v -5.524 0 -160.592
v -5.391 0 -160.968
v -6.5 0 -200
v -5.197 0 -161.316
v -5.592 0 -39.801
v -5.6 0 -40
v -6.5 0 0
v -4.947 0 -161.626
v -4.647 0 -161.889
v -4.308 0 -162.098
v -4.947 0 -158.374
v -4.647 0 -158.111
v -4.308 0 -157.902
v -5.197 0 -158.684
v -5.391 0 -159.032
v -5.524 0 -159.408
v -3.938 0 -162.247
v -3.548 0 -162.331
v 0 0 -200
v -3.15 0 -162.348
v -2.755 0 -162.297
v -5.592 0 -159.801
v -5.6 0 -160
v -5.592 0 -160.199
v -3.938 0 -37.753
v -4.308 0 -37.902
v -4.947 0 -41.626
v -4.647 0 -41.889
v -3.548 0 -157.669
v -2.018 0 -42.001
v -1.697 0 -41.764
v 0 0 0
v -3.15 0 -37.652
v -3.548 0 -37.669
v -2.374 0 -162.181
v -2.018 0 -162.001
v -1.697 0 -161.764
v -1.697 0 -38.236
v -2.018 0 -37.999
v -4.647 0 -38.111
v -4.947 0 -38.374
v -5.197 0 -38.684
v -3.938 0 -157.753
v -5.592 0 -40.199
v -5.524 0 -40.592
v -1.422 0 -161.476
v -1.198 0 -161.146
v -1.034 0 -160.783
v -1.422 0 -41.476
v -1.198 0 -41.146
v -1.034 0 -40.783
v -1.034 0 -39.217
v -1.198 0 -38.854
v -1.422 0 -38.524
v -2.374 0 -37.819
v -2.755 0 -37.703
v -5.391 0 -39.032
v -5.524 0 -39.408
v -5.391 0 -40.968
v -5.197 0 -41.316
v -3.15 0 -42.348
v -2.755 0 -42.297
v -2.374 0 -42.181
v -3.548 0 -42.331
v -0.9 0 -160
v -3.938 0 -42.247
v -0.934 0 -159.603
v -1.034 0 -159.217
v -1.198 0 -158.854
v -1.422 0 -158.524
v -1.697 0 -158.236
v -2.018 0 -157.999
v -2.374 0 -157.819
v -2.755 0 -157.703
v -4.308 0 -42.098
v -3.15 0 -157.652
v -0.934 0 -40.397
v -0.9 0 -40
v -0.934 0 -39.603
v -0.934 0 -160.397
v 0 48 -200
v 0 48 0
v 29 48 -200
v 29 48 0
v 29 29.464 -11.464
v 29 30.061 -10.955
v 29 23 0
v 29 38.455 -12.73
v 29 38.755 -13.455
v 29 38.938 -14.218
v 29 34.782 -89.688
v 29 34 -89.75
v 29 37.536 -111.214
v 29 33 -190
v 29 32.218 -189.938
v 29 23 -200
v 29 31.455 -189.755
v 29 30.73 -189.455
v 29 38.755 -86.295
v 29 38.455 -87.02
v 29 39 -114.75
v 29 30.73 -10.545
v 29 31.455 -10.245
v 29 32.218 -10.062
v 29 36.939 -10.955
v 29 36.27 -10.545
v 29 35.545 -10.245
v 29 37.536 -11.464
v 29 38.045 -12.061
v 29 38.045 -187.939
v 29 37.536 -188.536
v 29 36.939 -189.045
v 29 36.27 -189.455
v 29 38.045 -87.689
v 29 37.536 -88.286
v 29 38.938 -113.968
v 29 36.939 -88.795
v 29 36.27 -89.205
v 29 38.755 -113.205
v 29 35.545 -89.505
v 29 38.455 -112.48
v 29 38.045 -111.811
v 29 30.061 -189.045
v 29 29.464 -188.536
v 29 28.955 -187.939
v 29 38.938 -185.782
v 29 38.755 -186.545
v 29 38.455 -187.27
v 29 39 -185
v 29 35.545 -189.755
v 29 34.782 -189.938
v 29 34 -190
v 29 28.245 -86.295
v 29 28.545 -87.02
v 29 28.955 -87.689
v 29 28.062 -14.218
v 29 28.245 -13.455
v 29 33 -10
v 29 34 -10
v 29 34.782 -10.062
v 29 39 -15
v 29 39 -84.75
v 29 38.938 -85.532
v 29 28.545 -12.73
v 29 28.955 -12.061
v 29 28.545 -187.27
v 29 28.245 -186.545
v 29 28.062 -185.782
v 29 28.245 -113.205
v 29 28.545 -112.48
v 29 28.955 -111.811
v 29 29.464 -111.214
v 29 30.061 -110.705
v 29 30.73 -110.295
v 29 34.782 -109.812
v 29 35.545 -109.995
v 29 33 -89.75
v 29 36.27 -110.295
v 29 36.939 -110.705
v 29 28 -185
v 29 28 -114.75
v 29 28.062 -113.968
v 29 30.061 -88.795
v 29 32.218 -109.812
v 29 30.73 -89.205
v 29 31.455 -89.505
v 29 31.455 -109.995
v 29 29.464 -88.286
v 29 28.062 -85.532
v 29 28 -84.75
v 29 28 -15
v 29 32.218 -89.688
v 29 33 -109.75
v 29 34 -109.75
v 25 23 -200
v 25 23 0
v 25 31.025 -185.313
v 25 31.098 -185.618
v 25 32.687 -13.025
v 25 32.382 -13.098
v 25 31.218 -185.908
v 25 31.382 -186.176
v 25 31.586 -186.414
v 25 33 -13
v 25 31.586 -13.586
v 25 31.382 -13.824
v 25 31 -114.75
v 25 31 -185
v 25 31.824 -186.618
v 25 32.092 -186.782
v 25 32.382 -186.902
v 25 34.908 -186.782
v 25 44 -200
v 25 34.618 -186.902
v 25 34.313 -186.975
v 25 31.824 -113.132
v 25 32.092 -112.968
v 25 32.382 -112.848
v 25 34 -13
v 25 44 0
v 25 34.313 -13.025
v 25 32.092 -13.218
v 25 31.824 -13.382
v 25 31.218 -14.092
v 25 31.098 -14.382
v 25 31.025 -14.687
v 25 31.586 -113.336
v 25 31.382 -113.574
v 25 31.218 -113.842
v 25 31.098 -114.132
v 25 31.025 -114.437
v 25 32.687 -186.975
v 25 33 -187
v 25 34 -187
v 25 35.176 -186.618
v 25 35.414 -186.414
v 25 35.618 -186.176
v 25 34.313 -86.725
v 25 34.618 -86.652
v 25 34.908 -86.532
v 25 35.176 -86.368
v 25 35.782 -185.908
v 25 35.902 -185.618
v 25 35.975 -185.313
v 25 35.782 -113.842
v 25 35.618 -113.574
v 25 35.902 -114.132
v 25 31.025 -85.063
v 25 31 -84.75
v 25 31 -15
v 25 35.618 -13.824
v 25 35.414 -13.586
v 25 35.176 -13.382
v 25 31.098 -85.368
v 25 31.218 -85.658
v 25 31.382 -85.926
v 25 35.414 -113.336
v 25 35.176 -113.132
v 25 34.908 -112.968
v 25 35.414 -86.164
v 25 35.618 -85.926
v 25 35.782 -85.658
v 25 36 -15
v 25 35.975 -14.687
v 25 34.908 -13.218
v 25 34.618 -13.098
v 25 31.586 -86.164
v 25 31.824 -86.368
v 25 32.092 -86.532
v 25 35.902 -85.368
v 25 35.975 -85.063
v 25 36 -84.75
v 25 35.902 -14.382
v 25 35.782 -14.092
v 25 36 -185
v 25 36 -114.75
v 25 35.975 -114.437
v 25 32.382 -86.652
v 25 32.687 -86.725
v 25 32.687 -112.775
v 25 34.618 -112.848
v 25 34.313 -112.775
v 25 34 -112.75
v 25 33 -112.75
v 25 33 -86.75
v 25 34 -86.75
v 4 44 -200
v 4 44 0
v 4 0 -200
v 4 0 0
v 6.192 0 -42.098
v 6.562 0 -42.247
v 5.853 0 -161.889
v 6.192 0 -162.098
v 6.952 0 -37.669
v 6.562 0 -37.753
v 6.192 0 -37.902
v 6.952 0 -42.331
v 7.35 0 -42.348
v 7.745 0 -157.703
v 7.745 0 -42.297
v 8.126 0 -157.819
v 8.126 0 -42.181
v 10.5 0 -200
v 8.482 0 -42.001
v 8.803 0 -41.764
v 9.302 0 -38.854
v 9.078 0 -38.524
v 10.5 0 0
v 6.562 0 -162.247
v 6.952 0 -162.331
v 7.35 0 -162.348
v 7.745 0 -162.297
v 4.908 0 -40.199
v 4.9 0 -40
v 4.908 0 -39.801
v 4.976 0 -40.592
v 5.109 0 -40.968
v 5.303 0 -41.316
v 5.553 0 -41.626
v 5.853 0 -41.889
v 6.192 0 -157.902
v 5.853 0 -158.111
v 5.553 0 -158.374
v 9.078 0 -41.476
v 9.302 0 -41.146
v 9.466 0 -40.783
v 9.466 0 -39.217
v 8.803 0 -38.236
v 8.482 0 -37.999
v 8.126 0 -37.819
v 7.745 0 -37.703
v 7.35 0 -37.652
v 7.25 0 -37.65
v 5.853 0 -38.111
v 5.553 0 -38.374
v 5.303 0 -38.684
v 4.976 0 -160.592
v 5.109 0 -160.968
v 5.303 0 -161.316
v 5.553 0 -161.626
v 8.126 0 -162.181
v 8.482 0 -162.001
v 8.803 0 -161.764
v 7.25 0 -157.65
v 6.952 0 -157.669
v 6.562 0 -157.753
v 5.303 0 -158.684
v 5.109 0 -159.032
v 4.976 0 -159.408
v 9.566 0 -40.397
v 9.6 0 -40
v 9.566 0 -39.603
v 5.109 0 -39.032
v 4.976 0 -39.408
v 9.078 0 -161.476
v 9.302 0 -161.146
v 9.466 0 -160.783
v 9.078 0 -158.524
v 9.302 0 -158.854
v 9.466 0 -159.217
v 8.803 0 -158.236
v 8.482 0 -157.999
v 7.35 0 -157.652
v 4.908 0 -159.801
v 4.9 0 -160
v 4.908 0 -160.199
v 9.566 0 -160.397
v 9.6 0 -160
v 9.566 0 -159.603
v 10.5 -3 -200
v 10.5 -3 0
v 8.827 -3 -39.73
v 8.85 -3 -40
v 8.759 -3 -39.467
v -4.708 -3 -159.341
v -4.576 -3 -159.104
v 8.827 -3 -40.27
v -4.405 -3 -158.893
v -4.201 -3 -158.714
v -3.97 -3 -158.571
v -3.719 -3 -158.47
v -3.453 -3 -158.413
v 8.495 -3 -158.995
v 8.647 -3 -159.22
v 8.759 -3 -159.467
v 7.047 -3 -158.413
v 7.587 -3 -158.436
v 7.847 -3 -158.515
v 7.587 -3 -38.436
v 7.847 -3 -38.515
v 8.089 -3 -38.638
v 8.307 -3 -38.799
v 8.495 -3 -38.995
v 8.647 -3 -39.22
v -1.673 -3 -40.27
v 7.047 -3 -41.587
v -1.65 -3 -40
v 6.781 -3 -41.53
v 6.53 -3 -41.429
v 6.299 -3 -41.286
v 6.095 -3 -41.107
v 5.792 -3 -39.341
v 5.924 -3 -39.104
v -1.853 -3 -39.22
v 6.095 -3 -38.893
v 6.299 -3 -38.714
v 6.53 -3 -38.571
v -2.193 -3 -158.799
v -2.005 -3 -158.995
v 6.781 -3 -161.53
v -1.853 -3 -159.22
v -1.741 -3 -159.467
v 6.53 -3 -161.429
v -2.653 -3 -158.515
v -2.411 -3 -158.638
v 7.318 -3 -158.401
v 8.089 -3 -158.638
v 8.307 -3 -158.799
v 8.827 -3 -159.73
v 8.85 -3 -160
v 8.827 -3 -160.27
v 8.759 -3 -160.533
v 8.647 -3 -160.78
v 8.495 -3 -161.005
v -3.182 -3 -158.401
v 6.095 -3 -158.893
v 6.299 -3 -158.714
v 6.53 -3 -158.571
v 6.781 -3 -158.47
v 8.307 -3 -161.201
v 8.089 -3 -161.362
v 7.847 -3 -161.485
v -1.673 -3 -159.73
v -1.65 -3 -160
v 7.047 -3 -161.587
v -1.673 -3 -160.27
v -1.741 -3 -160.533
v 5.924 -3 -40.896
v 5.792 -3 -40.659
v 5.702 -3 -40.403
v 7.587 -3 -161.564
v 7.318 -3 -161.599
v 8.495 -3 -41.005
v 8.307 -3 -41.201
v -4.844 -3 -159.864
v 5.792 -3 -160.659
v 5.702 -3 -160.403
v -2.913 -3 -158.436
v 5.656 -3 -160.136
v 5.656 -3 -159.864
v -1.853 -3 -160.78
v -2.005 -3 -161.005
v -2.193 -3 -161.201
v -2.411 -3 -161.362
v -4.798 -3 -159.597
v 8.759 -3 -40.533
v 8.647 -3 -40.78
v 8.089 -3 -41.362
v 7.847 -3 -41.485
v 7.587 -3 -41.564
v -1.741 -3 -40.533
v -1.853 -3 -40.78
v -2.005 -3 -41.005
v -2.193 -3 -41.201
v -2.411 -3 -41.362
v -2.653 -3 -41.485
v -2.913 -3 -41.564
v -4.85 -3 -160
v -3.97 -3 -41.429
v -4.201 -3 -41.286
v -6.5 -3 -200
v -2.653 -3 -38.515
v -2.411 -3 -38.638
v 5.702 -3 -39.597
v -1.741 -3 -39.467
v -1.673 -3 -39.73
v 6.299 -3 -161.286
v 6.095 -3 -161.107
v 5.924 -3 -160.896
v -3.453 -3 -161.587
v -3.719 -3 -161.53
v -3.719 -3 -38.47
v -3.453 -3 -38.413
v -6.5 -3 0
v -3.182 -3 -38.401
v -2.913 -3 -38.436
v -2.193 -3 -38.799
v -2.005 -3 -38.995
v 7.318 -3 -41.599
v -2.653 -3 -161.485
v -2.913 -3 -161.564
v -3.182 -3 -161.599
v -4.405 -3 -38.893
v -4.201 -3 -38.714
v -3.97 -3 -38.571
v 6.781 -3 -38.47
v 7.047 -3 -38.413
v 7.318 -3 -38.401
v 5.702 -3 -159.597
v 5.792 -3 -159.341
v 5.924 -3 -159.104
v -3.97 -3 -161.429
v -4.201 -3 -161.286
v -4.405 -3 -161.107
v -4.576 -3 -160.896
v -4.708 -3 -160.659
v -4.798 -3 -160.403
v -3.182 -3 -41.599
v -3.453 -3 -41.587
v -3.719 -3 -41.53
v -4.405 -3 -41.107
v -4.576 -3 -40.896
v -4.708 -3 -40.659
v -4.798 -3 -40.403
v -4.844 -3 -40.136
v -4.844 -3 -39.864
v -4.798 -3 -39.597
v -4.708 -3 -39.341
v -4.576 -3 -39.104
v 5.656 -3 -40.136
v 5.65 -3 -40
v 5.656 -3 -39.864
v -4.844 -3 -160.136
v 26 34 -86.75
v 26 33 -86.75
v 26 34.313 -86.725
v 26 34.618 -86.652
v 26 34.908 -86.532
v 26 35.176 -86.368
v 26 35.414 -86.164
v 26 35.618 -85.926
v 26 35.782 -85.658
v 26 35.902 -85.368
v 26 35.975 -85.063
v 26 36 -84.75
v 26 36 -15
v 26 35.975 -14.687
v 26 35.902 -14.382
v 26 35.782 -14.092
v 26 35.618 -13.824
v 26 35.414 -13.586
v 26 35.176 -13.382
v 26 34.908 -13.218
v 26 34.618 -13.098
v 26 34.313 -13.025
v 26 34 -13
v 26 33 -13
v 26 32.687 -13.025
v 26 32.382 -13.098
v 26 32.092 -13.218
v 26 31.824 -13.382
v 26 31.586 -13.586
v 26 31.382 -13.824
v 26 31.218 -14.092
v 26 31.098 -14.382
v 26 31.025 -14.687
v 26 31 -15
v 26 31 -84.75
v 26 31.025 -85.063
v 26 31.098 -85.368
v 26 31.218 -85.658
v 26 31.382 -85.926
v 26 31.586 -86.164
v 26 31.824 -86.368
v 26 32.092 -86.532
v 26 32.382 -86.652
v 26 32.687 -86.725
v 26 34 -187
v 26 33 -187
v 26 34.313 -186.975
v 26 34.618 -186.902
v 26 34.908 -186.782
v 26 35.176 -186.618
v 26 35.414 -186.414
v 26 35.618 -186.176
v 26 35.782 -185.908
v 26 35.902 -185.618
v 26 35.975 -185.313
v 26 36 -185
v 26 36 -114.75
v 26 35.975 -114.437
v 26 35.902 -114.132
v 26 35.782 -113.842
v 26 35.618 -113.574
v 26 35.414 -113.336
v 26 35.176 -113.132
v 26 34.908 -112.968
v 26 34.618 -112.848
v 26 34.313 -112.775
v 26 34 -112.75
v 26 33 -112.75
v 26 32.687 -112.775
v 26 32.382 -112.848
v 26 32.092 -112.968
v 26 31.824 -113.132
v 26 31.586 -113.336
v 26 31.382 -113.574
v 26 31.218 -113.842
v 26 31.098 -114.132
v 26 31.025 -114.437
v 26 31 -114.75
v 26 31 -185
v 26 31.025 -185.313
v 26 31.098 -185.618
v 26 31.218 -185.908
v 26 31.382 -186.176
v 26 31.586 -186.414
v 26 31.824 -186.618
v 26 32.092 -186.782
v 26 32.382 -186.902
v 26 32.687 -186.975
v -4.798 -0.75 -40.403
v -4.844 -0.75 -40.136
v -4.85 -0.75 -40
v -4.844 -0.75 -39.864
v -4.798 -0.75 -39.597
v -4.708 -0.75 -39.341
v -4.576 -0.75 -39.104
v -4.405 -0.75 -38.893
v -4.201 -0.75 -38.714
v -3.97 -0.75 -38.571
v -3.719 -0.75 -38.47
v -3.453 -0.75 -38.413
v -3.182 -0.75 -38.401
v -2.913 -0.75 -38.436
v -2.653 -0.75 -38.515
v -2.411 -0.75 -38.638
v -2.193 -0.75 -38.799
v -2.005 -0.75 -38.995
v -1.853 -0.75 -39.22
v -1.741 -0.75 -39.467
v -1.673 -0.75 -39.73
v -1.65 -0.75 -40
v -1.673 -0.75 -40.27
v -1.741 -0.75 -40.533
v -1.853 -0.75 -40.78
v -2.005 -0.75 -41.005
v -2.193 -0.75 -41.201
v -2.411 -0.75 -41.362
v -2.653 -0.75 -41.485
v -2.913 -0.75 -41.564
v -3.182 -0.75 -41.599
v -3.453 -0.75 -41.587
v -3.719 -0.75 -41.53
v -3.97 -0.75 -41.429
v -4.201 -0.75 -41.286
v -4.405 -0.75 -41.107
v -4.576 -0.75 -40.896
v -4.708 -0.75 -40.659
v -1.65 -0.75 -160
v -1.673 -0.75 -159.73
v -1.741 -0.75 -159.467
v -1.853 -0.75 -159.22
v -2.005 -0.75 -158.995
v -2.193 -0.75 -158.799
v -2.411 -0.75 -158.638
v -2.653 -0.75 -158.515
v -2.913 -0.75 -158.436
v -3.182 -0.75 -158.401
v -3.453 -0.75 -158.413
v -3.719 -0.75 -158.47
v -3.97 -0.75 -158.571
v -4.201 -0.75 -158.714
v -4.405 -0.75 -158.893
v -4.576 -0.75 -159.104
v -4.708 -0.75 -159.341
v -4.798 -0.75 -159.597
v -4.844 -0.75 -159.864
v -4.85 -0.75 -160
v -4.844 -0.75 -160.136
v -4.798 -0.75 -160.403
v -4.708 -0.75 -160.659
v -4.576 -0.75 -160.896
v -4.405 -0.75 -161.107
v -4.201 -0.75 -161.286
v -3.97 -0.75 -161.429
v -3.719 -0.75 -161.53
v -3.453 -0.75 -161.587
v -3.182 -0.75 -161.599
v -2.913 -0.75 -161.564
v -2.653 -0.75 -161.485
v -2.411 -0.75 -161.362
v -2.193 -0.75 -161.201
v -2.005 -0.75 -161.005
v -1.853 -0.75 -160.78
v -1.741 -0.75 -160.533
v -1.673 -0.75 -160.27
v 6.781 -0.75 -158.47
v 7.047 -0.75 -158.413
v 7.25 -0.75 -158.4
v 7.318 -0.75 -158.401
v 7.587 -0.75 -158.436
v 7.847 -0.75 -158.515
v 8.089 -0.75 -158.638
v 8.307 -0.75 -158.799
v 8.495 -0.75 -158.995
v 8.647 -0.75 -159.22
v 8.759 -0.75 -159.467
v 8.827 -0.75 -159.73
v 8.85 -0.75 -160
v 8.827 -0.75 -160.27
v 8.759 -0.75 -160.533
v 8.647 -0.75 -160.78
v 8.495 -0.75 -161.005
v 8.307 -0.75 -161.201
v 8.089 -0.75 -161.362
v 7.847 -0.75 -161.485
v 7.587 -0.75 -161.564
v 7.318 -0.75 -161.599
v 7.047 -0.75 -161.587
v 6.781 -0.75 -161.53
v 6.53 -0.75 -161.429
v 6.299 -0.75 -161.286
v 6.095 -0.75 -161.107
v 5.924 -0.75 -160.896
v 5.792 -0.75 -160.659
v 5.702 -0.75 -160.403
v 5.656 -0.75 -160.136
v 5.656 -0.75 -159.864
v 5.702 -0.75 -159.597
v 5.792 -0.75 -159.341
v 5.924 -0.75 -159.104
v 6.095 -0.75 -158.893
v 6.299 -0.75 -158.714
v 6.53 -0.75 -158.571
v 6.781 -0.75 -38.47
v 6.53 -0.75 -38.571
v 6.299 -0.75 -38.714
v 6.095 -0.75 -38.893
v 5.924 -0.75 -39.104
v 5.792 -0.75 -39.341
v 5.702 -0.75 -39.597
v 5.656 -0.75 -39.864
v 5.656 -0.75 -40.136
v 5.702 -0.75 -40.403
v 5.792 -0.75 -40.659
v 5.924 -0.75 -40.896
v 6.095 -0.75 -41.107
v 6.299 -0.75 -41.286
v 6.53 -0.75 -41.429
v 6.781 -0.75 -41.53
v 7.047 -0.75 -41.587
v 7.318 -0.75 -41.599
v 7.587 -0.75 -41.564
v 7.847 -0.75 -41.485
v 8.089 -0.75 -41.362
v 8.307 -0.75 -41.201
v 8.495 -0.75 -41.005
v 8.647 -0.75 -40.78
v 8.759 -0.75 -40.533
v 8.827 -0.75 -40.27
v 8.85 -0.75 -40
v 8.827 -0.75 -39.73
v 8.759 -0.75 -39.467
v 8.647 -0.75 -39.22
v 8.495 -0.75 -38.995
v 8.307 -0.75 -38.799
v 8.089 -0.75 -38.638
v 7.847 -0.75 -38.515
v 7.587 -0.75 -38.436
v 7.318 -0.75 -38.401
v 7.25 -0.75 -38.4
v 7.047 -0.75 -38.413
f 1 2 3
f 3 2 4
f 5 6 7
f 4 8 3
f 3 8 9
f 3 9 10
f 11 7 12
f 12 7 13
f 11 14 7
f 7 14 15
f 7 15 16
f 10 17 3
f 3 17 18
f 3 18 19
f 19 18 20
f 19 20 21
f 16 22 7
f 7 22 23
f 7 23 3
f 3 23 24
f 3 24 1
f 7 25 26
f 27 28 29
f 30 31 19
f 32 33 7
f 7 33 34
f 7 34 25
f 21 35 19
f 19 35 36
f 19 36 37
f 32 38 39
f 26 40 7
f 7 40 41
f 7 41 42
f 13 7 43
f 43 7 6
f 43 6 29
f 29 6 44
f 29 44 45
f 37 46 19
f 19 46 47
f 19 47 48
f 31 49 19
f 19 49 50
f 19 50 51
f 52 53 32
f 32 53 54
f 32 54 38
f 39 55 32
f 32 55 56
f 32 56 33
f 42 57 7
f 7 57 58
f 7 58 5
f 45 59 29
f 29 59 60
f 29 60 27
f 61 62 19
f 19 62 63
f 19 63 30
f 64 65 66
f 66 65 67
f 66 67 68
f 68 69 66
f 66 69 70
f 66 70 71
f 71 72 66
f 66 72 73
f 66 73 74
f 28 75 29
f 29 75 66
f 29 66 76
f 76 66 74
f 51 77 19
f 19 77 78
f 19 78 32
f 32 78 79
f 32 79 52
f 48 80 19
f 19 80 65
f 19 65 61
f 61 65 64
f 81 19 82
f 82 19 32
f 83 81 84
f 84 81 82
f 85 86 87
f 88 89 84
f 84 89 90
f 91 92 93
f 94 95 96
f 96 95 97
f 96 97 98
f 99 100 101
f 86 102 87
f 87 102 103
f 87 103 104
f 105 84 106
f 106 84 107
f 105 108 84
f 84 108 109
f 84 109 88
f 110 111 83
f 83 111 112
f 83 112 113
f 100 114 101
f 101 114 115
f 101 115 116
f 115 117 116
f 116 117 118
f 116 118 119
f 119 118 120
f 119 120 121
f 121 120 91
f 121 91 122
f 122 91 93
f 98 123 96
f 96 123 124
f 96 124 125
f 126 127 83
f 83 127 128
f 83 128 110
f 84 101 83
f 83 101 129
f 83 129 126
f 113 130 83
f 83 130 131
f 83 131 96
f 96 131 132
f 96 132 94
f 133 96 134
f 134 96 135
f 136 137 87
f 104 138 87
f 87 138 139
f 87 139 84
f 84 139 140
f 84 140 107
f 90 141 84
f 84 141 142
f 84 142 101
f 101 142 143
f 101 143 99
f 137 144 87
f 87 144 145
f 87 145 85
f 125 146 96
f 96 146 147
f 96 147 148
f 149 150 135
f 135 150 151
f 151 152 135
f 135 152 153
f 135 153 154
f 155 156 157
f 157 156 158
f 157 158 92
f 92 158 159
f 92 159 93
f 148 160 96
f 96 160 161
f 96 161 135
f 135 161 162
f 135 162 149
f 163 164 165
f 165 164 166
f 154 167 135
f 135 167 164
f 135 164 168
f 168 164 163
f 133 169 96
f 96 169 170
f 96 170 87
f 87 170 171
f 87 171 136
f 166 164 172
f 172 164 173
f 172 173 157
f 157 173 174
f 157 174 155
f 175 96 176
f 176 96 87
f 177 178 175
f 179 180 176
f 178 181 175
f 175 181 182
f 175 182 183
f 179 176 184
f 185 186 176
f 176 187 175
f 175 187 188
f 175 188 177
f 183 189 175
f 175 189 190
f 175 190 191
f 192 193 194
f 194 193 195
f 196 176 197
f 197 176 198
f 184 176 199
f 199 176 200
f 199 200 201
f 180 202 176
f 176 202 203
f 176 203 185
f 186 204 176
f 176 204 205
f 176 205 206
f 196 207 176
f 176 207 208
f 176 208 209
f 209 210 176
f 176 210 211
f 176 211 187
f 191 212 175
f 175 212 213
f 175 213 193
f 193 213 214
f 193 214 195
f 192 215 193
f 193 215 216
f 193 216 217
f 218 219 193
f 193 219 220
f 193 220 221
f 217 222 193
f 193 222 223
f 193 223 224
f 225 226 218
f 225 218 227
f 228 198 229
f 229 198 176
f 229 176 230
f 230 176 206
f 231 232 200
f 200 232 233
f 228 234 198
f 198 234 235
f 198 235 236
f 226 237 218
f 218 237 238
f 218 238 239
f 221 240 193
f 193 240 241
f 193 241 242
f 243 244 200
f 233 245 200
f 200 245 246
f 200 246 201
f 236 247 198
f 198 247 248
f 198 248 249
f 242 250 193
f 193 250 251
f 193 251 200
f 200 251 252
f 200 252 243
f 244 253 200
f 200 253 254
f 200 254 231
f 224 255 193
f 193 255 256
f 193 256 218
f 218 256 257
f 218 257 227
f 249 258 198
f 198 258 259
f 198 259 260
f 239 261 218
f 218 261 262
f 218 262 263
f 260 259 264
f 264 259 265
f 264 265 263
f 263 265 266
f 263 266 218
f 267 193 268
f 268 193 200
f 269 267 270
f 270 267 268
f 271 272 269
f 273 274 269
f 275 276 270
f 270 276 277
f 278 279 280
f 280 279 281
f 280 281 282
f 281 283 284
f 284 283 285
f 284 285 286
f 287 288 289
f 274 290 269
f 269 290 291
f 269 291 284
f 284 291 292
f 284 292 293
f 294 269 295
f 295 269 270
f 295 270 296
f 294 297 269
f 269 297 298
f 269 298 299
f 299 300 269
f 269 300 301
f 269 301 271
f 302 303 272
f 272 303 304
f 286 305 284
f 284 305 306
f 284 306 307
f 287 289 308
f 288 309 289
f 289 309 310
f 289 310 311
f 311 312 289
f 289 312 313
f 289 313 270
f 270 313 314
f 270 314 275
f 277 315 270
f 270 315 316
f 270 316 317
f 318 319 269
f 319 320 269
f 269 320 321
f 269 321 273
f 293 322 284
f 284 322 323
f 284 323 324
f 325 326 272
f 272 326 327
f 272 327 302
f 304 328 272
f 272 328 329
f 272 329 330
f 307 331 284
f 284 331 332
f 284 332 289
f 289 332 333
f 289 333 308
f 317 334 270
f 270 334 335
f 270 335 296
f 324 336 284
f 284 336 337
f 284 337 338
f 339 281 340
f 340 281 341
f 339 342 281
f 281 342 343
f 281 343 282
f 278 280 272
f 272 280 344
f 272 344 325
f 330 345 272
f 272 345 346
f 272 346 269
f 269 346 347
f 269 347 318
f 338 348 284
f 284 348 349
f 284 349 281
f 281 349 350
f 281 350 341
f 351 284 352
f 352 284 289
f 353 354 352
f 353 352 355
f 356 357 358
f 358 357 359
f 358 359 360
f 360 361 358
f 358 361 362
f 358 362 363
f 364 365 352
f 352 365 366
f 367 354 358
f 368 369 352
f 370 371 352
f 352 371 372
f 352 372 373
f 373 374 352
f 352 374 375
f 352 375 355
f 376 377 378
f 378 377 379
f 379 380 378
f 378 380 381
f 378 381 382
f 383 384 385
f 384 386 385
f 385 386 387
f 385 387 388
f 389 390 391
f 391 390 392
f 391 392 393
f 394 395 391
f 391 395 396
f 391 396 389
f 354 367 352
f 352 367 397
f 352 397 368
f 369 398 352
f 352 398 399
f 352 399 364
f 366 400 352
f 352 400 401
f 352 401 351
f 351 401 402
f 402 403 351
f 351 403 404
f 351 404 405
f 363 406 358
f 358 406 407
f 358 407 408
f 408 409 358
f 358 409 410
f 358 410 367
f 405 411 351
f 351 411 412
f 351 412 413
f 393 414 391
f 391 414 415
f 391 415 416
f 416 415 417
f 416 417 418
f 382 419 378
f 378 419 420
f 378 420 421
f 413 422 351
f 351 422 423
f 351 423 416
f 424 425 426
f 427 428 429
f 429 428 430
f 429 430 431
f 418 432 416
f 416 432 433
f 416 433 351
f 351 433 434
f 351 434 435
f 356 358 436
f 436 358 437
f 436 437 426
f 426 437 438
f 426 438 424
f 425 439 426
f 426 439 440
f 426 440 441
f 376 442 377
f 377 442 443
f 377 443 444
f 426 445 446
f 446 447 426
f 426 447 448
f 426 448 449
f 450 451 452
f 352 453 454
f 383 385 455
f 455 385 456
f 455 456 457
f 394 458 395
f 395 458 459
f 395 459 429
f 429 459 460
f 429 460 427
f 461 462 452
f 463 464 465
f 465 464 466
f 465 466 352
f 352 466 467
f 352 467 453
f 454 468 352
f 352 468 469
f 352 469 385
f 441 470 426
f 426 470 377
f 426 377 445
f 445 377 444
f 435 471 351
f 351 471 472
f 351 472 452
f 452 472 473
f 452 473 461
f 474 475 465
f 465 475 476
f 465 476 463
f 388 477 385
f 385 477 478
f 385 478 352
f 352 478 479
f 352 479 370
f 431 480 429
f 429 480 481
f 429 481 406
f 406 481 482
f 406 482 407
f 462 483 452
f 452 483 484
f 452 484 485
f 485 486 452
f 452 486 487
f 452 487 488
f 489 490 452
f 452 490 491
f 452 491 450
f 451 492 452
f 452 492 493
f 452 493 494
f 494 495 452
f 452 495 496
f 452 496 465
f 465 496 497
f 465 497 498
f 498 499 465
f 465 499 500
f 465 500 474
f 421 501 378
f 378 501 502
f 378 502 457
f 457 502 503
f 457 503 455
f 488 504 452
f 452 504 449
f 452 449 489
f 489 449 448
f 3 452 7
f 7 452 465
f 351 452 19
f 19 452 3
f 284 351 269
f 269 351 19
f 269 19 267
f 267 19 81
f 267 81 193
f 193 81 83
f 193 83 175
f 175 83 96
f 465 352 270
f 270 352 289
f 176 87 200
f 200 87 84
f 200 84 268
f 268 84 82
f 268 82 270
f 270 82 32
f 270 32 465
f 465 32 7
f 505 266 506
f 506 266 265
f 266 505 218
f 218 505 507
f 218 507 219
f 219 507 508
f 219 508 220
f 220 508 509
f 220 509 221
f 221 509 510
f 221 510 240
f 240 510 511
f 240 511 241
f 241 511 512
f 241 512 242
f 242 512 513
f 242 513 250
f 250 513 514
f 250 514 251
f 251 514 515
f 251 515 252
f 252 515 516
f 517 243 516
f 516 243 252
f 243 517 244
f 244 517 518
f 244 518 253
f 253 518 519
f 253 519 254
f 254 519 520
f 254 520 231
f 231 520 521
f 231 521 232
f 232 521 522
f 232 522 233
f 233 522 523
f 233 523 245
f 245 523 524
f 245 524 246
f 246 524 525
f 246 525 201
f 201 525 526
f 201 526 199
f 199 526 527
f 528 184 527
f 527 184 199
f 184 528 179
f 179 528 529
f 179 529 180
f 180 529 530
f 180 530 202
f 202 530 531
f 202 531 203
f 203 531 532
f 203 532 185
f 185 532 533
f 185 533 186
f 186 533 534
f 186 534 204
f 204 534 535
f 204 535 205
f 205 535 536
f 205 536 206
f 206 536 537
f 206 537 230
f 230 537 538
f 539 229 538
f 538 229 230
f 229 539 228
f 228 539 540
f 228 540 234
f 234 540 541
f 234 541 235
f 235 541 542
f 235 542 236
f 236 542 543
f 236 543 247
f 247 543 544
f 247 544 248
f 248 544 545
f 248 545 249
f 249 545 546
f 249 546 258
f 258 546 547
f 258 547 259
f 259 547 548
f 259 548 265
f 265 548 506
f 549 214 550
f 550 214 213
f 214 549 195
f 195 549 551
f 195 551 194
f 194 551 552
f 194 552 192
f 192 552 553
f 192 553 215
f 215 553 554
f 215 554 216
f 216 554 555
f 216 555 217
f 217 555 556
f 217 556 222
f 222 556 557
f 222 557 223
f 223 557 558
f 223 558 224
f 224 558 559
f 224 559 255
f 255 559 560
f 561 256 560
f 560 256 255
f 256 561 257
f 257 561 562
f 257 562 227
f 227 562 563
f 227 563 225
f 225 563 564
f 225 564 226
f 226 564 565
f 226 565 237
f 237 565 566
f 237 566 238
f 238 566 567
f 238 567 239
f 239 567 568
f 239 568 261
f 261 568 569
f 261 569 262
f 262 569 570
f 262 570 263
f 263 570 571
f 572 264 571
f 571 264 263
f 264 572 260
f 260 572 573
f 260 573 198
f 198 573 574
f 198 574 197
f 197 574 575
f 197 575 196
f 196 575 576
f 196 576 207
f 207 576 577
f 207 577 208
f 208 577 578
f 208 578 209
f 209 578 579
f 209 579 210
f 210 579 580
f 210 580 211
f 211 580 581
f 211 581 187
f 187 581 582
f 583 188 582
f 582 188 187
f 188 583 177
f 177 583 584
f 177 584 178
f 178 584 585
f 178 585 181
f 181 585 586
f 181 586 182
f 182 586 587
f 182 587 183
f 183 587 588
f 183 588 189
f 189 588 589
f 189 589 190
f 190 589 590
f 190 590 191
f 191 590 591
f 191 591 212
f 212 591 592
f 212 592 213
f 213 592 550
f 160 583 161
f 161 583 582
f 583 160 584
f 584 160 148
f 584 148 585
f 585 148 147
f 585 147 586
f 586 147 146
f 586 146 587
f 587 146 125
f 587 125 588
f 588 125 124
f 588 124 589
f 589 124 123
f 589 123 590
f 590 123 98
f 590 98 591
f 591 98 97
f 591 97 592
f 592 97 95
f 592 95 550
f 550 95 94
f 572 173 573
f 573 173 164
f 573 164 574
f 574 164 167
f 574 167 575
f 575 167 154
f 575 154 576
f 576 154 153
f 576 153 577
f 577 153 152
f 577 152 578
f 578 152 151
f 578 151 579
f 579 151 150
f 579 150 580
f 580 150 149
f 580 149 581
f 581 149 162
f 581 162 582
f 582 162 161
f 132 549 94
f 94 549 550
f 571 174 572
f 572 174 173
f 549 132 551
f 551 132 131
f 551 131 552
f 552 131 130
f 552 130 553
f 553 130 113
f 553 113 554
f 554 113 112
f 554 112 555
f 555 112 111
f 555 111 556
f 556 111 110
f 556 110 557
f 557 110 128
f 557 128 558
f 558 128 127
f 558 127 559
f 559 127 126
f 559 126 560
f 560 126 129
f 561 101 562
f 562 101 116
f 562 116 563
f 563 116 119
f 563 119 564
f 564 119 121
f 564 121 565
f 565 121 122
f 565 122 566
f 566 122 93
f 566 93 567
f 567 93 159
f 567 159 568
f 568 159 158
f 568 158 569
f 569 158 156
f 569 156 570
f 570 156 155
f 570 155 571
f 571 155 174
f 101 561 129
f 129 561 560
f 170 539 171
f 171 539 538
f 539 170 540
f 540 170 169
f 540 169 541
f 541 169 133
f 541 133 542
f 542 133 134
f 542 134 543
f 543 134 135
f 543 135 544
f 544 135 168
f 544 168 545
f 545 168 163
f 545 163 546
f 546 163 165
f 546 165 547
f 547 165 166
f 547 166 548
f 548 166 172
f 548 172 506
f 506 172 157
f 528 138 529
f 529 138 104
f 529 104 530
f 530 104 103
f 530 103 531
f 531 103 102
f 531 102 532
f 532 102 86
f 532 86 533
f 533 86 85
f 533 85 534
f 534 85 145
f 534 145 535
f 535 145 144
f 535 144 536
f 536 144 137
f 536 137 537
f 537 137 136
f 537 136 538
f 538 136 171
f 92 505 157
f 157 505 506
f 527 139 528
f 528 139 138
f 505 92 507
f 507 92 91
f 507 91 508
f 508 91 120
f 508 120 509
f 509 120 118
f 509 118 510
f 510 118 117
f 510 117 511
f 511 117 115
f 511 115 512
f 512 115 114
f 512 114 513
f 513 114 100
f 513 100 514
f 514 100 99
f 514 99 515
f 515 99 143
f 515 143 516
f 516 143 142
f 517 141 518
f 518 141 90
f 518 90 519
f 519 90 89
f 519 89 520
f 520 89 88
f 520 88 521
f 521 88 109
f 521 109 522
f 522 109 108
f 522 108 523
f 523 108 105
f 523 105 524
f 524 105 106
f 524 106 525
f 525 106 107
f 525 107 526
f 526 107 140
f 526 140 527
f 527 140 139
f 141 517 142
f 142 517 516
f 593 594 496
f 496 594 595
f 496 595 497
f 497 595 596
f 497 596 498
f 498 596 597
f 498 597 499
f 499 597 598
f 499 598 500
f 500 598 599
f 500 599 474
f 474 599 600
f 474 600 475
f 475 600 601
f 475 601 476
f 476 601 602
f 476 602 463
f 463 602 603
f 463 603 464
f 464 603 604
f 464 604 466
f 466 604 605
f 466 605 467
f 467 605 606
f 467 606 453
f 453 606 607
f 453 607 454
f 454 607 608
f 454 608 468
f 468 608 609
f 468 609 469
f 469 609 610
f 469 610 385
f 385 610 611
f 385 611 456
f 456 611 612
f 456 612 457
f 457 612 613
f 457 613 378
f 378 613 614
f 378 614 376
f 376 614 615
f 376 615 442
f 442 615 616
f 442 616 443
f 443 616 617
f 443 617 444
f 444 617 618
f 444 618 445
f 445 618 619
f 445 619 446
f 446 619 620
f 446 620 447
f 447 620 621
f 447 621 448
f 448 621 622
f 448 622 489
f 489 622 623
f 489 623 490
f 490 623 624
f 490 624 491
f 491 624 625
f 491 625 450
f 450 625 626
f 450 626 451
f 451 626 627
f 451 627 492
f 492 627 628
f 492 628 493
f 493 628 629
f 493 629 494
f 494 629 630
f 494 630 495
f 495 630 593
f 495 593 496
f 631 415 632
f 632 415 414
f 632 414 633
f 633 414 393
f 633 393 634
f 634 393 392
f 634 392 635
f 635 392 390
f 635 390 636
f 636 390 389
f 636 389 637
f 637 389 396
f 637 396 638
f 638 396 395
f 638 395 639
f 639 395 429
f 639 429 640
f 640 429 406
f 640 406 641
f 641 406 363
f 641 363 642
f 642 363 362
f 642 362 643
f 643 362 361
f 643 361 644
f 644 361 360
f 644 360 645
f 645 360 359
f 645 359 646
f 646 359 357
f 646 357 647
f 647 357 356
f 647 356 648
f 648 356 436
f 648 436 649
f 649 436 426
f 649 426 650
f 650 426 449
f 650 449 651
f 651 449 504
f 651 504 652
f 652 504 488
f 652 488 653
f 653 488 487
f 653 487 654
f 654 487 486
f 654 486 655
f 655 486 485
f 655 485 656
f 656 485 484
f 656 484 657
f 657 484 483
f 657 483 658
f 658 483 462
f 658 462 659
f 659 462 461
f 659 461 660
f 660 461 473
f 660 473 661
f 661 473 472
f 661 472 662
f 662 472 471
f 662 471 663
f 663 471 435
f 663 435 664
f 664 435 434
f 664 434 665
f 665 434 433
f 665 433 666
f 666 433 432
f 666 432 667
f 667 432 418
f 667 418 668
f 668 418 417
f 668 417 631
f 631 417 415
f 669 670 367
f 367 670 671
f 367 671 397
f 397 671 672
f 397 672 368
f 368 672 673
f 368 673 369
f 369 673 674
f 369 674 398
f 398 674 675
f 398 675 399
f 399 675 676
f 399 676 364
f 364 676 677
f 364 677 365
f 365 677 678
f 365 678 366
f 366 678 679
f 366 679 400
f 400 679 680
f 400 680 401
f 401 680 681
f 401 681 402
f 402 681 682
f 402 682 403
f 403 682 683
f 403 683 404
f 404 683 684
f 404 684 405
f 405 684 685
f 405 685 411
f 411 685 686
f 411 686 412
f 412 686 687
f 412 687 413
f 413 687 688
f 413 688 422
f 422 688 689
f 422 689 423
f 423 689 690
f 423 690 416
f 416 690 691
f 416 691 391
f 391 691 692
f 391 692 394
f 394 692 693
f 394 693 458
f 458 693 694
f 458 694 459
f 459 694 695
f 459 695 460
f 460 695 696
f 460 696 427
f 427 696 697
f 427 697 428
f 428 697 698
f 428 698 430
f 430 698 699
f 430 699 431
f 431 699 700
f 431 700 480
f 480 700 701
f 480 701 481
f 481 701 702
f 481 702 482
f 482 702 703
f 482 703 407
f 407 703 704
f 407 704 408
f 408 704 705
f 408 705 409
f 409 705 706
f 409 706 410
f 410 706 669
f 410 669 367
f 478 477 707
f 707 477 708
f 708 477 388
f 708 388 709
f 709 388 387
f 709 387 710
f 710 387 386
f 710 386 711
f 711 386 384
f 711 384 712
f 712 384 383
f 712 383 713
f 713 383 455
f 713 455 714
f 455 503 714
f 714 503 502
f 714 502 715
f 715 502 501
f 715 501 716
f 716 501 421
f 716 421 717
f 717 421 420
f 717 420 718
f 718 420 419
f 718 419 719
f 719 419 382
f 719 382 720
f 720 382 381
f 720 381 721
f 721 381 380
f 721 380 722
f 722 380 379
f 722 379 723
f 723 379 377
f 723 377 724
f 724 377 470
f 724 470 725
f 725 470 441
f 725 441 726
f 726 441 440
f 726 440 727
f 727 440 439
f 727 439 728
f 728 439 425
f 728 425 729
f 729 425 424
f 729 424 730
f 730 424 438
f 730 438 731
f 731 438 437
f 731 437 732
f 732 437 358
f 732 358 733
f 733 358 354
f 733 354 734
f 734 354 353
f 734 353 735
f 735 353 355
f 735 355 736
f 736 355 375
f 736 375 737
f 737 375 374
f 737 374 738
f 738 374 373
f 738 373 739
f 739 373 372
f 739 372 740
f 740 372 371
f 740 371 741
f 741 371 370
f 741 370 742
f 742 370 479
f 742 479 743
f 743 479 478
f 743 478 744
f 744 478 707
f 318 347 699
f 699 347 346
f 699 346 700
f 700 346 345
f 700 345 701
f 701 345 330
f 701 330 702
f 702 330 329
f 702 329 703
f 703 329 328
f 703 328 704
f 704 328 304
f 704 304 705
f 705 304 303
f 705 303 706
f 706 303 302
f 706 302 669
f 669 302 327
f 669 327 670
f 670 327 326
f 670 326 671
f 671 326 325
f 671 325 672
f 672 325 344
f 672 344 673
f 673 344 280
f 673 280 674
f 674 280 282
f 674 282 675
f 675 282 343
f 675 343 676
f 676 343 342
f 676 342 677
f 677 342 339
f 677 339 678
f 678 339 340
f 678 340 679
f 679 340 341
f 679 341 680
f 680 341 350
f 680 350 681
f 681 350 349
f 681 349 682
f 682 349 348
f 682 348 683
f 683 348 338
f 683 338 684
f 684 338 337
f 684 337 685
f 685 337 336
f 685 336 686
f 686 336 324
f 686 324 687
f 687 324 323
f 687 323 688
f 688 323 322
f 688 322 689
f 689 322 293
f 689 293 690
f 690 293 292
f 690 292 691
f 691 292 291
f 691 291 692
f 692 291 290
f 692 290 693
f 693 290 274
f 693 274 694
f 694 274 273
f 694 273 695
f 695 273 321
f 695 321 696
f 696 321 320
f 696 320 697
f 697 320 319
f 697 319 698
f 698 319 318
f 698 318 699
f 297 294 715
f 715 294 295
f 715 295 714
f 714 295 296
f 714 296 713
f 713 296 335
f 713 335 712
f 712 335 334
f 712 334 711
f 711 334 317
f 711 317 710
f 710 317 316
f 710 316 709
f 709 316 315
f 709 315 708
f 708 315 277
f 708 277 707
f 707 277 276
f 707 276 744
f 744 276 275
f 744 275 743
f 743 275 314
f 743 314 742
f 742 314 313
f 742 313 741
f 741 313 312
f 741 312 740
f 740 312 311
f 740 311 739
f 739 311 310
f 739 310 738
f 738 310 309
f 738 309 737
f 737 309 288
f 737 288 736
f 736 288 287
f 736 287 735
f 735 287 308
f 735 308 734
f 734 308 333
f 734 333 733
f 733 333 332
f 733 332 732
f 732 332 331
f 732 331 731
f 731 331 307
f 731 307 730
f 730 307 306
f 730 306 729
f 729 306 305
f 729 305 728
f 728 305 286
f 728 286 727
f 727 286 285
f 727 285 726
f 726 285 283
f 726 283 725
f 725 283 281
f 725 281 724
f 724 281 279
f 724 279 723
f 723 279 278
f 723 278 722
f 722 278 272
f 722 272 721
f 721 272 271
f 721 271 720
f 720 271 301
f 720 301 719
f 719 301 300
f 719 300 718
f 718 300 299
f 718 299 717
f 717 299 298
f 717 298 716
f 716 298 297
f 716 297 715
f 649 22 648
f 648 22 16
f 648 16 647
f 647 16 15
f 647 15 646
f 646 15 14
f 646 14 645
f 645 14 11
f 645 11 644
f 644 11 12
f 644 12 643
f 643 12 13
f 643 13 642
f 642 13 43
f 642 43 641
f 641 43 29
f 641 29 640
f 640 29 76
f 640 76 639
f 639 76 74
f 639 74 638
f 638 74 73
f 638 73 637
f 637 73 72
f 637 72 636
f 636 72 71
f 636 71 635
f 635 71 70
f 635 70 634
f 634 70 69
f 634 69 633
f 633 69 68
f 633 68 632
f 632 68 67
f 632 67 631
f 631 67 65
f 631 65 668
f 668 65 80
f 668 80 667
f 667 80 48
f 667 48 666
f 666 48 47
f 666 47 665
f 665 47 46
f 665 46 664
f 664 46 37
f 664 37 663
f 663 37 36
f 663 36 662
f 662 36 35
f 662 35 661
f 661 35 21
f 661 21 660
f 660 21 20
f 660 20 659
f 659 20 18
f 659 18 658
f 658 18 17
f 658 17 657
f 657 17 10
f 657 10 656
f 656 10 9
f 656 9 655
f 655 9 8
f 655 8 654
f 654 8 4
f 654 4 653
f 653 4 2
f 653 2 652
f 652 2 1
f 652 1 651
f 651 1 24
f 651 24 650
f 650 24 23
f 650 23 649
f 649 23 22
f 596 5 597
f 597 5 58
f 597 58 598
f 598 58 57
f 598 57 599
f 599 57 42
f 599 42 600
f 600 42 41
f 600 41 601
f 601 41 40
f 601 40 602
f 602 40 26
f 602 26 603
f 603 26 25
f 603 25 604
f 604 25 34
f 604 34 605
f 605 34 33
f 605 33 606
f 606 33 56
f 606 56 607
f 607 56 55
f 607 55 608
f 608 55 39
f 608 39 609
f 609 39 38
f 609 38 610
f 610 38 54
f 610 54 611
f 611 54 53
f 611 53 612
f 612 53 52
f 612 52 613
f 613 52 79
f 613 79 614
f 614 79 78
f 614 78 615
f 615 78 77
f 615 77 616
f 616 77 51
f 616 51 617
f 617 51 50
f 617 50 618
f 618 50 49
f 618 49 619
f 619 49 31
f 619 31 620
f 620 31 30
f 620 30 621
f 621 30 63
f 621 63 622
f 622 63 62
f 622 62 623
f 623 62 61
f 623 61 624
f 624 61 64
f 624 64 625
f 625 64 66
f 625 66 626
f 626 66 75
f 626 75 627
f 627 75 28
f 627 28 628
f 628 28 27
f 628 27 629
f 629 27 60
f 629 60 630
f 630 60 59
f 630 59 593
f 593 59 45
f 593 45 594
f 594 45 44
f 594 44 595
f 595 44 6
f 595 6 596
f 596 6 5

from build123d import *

# Parameters (mm, degrees)
BOSS_EXTRUDE1_DEPTH = 200
CUT_EXTRUDE1_DEPTH  = 4
CHAMFER1_SIZE       = 3
SKETCH3_R           = 1.6
CUT_EXTRUDE2_DEPTH  = 3
CHAMFER2_SIZE       = 0.75


with BuildPart() as part:
    # Sketch1 → Boss-Extrude1 (new body)
    with BuildSketch(Plane.XY):
        Polygon((0, 0), (0, 48), (29, 48), (29, 23), (25, 23), (25, 44), (4, 44), (4, 0), (10.5, 0), (10.5, -3), (-6.5, -3), (-6.5, 0), align=None)
    extrude(amount=-BOSS_EXTRUDE1_DEPTH)

    # Sketch2 → Cut-Extrude1 (cut)
    with BuildSketch(Plane(origin=(29, 0, 0), x_dir=(0, 0, -1), z_dir=(1, 0, 0))):
        with BuildLine():
            Line((15, 36), (84.75, 36))
            ThreePointArc((84.75, 36), (86.164213562, 35.414213562), (86.75, 34))
            Line((86.75, 34), (86.75, 33))
            ThreePointArc((86.75, 33), (86.164213562, 31.585786438), (84.75, 31))
            Line((84.75, 31), (15, 31))
            ThreePointArc((15, 31), (13.585786438, 31.585786438), (13, 33))
            Line((13, 33), (13, 34))
            ThreePointArc((13, 34), (13.585786438, 35.414213562), (15, 36))
        make_face()
        with BuildLine():
            Line((114.75, 36), (185, 36))
            ThreePointArc((185, 36), (186.414213562, 35.414213562), (187, 34))
            Line((187, 34), (187, 33))
            ThreePointArc((187, 33), (186.414213562, 31.585786438), (185, 31))
            Line((185, 31), (114.75, 31))
            ThreePointArc((114.75, 31), (113.335786438, 31.585786438), (112.75, 33))
            Line((112.75, 33), (112.75, 34))
            ThreePointArc((112.75, 34), (113.335786438, 35.414213562), (114.75, 36))
        make_face()
    extrude(amount=-CUT_EXTRUDE1_DEPTH, mode=Mode.SUBTRACT)

    # Chamfer1
    chamfer1_edges = [part.edges().sort_by_distance(p)[0] for p in [
        (29, 31.585786438, -186.414213562),
        (29, 33.5, -187),
        (29, 35.414213562, -186.414213562),
        (29, 36, -149.875),
        (29, 35.414213562, -113.335786438),
        (29, 33.5, -112.75),
        (29, 31.585786438, -113.335786438),
        (29, 31, -149.875),
        (29, 31.585786438, -86.164213562),
        (29, 33.5, -86.75),
        (29, 35.414213562, -86.164213562),
        (29, 36, -49.875),
        (29, 35.414213562, -13.585786438),
        (29, 33.5, -13),
        (29, 31.585786438, -13.585786438),
        (29, 31, -49.875),
    ]]
    chamfer(chamfer1_edges, length=CHAMFER1_SIZE)

    # Sketch3 → Cut-Extrude2 (cut)
    with BuildSketch(Plane.XZ.offset(3)):
        with Locations((-3.25, -40)):
            Circle(SKETCH3_R)
        with Locations(Location((-3.25, -160, 0), (0, 0, 180))):
            Circle(SKETCH3_R)
        with Locations((7.25, -160)):
            Circle(SKETCH3_R)
        with Locations(Location((7.25, -40, 0), (0, 0, 180))):
            Circle(SKETCH3_R)
    extrude(amount=-CUT_EXTRUDE2_DEPTH, mode=Mode.SUBTRACT)

    # Chamfer2
    chamfer2_edges = [part.edges().sort_by_distance(p)[0] for p in [
        (8.85, 0, -40),
        (5.65, 0, -160),
        (-1.65, 0, -160),
        (-4.85, 0, -40),
    ]]
    chamfer(chamfer2_edges, length=CHAMFER2_SIZE)


solid = part.part
